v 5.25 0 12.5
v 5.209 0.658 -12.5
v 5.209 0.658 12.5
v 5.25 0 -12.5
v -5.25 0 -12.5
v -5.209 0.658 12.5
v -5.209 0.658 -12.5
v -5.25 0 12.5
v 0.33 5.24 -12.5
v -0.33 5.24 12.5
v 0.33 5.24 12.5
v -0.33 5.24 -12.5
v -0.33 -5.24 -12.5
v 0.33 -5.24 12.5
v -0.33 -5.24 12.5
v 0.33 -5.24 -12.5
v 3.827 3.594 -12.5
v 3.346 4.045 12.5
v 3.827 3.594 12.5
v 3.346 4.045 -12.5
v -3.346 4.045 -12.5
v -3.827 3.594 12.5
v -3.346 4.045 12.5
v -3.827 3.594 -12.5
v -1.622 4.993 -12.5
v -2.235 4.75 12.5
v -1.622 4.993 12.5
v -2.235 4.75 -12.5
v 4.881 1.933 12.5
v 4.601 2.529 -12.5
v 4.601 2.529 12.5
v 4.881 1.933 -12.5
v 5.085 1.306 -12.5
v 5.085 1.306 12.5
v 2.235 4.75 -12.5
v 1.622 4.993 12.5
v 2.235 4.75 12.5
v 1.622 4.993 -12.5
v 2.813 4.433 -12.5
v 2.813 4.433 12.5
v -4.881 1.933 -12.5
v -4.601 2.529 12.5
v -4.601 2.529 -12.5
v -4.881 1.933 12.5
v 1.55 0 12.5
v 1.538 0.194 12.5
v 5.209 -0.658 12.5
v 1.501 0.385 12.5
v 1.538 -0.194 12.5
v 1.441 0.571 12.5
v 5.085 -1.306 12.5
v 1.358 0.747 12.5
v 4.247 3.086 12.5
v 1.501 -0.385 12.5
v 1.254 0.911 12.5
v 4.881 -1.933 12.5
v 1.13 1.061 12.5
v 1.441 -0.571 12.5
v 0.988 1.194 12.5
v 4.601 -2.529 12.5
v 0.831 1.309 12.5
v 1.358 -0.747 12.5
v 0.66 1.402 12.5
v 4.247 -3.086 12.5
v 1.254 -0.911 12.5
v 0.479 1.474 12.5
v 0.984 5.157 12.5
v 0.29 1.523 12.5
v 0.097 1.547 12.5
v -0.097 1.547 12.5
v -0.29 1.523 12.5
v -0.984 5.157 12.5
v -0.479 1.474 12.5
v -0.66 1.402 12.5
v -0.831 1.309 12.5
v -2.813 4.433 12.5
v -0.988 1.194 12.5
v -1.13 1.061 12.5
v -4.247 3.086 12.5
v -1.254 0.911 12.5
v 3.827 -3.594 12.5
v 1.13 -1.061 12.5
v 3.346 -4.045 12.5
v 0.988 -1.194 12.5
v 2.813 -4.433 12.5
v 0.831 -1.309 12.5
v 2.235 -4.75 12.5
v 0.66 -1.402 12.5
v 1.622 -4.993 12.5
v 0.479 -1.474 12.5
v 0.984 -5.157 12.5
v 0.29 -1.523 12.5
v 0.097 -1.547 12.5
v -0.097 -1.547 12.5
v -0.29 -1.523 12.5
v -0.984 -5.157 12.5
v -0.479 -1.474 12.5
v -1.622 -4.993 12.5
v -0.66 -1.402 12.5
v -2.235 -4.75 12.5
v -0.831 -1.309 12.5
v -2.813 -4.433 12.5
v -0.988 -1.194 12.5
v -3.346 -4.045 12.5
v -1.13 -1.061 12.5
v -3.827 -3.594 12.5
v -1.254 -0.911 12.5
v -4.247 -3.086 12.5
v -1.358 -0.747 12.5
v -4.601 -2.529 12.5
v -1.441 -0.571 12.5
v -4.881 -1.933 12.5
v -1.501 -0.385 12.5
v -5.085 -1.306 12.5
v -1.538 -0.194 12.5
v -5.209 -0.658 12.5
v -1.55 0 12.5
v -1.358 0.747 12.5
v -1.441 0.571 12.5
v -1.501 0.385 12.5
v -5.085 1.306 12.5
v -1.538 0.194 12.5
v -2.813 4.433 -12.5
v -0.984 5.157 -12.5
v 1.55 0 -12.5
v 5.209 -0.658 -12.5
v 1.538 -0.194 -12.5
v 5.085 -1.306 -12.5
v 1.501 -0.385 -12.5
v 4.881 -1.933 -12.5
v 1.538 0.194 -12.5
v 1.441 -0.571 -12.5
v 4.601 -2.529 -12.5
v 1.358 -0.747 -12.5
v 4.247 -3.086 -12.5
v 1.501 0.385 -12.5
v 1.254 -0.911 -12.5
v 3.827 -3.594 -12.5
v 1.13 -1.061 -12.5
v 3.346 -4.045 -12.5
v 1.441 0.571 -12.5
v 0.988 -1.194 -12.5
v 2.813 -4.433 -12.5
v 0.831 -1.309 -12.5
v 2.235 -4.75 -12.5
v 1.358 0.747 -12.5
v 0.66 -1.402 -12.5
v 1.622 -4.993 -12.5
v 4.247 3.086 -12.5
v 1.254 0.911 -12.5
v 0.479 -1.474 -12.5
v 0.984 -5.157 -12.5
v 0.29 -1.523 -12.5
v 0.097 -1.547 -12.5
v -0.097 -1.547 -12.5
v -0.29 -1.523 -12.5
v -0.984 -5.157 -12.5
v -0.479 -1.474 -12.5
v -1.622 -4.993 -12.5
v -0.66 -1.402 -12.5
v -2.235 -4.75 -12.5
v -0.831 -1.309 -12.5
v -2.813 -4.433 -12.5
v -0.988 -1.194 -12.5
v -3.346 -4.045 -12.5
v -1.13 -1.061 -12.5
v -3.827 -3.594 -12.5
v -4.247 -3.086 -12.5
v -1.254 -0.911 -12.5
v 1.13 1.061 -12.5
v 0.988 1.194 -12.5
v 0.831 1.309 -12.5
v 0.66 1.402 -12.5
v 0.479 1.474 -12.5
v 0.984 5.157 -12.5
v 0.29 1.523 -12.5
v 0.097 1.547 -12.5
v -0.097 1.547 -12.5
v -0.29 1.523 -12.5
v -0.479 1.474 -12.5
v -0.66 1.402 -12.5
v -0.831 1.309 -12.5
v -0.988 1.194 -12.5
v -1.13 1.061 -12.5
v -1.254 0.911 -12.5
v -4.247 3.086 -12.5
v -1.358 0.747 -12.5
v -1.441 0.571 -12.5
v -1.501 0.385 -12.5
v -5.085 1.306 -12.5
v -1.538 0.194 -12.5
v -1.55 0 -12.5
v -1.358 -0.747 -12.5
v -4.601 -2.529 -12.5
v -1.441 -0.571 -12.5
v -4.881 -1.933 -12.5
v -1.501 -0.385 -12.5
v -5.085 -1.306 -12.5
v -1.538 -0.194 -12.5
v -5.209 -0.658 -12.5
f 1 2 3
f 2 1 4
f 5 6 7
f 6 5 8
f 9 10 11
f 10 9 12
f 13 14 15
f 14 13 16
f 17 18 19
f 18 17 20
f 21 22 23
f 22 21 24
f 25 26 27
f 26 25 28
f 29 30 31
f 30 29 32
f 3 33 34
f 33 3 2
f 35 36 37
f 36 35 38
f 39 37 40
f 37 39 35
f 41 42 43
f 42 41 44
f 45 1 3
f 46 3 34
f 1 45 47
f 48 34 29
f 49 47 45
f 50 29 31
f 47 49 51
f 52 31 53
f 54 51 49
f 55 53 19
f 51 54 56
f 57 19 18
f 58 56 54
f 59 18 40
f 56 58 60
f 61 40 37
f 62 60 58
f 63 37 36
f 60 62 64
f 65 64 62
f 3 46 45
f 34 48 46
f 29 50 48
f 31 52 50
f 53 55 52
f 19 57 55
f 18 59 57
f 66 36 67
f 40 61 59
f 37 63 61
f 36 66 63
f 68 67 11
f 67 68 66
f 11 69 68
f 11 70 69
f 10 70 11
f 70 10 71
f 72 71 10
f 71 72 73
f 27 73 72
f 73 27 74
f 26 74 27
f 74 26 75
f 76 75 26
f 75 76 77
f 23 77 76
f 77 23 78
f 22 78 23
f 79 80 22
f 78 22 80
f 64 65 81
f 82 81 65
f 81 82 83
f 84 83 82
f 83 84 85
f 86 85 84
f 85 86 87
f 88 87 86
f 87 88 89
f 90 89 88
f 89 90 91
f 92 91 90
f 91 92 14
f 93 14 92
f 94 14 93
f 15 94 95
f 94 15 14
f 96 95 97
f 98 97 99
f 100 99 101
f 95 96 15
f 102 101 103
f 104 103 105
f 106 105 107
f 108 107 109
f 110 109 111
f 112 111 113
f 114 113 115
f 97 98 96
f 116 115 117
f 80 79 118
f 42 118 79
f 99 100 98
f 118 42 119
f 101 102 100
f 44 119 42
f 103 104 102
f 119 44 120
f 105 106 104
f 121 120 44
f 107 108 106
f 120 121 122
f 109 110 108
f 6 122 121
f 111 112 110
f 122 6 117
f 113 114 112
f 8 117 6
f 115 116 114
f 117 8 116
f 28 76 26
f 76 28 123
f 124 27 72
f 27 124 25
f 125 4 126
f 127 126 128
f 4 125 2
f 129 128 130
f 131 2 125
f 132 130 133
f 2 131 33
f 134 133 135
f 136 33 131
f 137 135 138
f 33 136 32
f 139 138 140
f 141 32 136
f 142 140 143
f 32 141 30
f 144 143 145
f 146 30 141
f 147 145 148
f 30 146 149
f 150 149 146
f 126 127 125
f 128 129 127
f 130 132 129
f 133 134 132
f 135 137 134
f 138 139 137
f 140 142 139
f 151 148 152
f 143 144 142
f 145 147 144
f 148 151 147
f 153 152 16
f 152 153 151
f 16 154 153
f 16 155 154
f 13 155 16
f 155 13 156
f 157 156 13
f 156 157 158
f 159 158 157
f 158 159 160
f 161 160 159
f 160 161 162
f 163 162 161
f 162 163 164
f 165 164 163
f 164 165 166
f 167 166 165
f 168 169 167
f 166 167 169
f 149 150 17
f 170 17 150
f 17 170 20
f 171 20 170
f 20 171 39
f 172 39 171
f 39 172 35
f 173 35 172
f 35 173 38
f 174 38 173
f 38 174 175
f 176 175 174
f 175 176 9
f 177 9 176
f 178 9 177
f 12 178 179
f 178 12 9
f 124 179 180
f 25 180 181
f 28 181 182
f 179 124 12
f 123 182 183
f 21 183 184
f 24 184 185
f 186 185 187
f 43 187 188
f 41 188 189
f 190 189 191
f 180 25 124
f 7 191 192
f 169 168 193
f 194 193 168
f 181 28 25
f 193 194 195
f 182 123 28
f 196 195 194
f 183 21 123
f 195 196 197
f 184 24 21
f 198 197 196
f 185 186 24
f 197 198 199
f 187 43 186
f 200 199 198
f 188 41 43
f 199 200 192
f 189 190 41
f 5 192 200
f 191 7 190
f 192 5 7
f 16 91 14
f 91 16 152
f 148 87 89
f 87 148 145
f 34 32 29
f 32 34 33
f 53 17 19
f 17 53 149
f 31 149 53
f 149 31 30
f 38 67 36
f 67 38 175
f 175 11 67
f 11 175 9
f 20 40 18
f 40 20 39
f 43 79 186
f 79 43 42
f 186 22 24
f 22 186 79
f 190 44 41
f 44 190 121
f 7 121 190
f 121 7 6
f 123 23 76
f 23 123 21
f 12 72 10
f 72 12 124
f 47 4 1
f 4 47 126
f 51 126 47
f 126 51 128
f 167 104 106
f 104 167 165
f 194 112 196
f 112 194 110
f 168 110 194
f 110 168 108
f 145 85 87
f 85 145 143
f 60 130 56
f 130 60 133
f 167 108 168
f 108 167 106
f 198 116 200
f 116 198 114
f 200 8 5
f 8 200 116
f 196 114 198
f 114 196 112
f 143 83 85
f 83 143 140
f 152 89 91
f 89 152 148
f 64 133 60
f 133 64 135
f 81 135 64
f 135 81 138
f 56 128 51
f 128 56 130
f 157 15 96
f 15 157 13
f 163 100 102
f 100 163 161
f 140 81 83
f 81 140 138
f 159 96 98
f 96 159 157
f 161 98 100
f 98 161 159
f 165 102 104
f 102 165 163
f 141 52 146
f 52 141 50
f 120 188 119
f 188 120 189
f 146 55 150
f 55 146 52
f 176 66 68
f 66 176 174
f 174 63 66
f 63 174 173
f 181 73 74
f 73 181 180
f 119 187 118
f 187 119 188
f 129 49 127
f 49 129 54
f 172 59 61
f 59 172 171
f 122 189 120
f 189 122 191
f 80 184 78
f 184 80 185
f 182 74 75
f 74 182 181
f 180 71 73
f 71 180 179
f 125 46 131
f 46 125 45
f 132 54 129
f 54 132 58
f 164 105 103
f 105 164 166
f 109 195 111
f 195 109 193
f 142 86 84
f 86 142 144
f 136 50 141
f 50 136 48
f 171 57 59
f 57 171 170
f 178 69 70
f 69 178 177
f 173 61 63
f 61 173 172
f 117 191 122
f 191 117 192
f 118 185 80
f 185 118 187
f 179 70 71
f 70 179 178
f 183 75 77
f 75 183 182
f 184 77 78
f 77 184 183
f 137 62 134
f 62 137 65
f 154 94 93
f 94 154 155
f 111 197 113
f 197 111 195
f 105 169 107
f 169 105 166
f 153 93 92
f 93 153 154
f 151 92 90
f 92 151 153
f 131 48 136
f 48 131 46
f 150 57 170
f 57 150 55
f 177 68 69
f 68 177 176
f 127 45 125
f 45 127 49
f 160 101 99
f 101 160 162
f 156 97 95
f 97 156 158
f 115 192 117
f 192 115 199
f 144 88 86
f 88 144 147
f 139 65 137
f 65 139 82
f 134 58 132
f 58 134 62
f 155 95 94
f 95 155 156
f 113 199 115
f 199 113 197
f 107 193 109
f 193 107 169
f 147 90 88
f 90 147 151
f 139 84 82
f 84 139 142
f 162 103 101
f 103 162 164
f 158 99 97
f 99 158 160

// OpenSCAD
$fn = 50;


difference() {
	union() {
		translate(v = [0, 0, -12.5000000000]) {
			cylinder(h = 25, r = 5.2500000000);
		}
	}
	union() {
		translate(v = [0, 0, -100.0000000000]) {
			cylinder(h = 200, r = 1.5500000000);
		}
	}
}
